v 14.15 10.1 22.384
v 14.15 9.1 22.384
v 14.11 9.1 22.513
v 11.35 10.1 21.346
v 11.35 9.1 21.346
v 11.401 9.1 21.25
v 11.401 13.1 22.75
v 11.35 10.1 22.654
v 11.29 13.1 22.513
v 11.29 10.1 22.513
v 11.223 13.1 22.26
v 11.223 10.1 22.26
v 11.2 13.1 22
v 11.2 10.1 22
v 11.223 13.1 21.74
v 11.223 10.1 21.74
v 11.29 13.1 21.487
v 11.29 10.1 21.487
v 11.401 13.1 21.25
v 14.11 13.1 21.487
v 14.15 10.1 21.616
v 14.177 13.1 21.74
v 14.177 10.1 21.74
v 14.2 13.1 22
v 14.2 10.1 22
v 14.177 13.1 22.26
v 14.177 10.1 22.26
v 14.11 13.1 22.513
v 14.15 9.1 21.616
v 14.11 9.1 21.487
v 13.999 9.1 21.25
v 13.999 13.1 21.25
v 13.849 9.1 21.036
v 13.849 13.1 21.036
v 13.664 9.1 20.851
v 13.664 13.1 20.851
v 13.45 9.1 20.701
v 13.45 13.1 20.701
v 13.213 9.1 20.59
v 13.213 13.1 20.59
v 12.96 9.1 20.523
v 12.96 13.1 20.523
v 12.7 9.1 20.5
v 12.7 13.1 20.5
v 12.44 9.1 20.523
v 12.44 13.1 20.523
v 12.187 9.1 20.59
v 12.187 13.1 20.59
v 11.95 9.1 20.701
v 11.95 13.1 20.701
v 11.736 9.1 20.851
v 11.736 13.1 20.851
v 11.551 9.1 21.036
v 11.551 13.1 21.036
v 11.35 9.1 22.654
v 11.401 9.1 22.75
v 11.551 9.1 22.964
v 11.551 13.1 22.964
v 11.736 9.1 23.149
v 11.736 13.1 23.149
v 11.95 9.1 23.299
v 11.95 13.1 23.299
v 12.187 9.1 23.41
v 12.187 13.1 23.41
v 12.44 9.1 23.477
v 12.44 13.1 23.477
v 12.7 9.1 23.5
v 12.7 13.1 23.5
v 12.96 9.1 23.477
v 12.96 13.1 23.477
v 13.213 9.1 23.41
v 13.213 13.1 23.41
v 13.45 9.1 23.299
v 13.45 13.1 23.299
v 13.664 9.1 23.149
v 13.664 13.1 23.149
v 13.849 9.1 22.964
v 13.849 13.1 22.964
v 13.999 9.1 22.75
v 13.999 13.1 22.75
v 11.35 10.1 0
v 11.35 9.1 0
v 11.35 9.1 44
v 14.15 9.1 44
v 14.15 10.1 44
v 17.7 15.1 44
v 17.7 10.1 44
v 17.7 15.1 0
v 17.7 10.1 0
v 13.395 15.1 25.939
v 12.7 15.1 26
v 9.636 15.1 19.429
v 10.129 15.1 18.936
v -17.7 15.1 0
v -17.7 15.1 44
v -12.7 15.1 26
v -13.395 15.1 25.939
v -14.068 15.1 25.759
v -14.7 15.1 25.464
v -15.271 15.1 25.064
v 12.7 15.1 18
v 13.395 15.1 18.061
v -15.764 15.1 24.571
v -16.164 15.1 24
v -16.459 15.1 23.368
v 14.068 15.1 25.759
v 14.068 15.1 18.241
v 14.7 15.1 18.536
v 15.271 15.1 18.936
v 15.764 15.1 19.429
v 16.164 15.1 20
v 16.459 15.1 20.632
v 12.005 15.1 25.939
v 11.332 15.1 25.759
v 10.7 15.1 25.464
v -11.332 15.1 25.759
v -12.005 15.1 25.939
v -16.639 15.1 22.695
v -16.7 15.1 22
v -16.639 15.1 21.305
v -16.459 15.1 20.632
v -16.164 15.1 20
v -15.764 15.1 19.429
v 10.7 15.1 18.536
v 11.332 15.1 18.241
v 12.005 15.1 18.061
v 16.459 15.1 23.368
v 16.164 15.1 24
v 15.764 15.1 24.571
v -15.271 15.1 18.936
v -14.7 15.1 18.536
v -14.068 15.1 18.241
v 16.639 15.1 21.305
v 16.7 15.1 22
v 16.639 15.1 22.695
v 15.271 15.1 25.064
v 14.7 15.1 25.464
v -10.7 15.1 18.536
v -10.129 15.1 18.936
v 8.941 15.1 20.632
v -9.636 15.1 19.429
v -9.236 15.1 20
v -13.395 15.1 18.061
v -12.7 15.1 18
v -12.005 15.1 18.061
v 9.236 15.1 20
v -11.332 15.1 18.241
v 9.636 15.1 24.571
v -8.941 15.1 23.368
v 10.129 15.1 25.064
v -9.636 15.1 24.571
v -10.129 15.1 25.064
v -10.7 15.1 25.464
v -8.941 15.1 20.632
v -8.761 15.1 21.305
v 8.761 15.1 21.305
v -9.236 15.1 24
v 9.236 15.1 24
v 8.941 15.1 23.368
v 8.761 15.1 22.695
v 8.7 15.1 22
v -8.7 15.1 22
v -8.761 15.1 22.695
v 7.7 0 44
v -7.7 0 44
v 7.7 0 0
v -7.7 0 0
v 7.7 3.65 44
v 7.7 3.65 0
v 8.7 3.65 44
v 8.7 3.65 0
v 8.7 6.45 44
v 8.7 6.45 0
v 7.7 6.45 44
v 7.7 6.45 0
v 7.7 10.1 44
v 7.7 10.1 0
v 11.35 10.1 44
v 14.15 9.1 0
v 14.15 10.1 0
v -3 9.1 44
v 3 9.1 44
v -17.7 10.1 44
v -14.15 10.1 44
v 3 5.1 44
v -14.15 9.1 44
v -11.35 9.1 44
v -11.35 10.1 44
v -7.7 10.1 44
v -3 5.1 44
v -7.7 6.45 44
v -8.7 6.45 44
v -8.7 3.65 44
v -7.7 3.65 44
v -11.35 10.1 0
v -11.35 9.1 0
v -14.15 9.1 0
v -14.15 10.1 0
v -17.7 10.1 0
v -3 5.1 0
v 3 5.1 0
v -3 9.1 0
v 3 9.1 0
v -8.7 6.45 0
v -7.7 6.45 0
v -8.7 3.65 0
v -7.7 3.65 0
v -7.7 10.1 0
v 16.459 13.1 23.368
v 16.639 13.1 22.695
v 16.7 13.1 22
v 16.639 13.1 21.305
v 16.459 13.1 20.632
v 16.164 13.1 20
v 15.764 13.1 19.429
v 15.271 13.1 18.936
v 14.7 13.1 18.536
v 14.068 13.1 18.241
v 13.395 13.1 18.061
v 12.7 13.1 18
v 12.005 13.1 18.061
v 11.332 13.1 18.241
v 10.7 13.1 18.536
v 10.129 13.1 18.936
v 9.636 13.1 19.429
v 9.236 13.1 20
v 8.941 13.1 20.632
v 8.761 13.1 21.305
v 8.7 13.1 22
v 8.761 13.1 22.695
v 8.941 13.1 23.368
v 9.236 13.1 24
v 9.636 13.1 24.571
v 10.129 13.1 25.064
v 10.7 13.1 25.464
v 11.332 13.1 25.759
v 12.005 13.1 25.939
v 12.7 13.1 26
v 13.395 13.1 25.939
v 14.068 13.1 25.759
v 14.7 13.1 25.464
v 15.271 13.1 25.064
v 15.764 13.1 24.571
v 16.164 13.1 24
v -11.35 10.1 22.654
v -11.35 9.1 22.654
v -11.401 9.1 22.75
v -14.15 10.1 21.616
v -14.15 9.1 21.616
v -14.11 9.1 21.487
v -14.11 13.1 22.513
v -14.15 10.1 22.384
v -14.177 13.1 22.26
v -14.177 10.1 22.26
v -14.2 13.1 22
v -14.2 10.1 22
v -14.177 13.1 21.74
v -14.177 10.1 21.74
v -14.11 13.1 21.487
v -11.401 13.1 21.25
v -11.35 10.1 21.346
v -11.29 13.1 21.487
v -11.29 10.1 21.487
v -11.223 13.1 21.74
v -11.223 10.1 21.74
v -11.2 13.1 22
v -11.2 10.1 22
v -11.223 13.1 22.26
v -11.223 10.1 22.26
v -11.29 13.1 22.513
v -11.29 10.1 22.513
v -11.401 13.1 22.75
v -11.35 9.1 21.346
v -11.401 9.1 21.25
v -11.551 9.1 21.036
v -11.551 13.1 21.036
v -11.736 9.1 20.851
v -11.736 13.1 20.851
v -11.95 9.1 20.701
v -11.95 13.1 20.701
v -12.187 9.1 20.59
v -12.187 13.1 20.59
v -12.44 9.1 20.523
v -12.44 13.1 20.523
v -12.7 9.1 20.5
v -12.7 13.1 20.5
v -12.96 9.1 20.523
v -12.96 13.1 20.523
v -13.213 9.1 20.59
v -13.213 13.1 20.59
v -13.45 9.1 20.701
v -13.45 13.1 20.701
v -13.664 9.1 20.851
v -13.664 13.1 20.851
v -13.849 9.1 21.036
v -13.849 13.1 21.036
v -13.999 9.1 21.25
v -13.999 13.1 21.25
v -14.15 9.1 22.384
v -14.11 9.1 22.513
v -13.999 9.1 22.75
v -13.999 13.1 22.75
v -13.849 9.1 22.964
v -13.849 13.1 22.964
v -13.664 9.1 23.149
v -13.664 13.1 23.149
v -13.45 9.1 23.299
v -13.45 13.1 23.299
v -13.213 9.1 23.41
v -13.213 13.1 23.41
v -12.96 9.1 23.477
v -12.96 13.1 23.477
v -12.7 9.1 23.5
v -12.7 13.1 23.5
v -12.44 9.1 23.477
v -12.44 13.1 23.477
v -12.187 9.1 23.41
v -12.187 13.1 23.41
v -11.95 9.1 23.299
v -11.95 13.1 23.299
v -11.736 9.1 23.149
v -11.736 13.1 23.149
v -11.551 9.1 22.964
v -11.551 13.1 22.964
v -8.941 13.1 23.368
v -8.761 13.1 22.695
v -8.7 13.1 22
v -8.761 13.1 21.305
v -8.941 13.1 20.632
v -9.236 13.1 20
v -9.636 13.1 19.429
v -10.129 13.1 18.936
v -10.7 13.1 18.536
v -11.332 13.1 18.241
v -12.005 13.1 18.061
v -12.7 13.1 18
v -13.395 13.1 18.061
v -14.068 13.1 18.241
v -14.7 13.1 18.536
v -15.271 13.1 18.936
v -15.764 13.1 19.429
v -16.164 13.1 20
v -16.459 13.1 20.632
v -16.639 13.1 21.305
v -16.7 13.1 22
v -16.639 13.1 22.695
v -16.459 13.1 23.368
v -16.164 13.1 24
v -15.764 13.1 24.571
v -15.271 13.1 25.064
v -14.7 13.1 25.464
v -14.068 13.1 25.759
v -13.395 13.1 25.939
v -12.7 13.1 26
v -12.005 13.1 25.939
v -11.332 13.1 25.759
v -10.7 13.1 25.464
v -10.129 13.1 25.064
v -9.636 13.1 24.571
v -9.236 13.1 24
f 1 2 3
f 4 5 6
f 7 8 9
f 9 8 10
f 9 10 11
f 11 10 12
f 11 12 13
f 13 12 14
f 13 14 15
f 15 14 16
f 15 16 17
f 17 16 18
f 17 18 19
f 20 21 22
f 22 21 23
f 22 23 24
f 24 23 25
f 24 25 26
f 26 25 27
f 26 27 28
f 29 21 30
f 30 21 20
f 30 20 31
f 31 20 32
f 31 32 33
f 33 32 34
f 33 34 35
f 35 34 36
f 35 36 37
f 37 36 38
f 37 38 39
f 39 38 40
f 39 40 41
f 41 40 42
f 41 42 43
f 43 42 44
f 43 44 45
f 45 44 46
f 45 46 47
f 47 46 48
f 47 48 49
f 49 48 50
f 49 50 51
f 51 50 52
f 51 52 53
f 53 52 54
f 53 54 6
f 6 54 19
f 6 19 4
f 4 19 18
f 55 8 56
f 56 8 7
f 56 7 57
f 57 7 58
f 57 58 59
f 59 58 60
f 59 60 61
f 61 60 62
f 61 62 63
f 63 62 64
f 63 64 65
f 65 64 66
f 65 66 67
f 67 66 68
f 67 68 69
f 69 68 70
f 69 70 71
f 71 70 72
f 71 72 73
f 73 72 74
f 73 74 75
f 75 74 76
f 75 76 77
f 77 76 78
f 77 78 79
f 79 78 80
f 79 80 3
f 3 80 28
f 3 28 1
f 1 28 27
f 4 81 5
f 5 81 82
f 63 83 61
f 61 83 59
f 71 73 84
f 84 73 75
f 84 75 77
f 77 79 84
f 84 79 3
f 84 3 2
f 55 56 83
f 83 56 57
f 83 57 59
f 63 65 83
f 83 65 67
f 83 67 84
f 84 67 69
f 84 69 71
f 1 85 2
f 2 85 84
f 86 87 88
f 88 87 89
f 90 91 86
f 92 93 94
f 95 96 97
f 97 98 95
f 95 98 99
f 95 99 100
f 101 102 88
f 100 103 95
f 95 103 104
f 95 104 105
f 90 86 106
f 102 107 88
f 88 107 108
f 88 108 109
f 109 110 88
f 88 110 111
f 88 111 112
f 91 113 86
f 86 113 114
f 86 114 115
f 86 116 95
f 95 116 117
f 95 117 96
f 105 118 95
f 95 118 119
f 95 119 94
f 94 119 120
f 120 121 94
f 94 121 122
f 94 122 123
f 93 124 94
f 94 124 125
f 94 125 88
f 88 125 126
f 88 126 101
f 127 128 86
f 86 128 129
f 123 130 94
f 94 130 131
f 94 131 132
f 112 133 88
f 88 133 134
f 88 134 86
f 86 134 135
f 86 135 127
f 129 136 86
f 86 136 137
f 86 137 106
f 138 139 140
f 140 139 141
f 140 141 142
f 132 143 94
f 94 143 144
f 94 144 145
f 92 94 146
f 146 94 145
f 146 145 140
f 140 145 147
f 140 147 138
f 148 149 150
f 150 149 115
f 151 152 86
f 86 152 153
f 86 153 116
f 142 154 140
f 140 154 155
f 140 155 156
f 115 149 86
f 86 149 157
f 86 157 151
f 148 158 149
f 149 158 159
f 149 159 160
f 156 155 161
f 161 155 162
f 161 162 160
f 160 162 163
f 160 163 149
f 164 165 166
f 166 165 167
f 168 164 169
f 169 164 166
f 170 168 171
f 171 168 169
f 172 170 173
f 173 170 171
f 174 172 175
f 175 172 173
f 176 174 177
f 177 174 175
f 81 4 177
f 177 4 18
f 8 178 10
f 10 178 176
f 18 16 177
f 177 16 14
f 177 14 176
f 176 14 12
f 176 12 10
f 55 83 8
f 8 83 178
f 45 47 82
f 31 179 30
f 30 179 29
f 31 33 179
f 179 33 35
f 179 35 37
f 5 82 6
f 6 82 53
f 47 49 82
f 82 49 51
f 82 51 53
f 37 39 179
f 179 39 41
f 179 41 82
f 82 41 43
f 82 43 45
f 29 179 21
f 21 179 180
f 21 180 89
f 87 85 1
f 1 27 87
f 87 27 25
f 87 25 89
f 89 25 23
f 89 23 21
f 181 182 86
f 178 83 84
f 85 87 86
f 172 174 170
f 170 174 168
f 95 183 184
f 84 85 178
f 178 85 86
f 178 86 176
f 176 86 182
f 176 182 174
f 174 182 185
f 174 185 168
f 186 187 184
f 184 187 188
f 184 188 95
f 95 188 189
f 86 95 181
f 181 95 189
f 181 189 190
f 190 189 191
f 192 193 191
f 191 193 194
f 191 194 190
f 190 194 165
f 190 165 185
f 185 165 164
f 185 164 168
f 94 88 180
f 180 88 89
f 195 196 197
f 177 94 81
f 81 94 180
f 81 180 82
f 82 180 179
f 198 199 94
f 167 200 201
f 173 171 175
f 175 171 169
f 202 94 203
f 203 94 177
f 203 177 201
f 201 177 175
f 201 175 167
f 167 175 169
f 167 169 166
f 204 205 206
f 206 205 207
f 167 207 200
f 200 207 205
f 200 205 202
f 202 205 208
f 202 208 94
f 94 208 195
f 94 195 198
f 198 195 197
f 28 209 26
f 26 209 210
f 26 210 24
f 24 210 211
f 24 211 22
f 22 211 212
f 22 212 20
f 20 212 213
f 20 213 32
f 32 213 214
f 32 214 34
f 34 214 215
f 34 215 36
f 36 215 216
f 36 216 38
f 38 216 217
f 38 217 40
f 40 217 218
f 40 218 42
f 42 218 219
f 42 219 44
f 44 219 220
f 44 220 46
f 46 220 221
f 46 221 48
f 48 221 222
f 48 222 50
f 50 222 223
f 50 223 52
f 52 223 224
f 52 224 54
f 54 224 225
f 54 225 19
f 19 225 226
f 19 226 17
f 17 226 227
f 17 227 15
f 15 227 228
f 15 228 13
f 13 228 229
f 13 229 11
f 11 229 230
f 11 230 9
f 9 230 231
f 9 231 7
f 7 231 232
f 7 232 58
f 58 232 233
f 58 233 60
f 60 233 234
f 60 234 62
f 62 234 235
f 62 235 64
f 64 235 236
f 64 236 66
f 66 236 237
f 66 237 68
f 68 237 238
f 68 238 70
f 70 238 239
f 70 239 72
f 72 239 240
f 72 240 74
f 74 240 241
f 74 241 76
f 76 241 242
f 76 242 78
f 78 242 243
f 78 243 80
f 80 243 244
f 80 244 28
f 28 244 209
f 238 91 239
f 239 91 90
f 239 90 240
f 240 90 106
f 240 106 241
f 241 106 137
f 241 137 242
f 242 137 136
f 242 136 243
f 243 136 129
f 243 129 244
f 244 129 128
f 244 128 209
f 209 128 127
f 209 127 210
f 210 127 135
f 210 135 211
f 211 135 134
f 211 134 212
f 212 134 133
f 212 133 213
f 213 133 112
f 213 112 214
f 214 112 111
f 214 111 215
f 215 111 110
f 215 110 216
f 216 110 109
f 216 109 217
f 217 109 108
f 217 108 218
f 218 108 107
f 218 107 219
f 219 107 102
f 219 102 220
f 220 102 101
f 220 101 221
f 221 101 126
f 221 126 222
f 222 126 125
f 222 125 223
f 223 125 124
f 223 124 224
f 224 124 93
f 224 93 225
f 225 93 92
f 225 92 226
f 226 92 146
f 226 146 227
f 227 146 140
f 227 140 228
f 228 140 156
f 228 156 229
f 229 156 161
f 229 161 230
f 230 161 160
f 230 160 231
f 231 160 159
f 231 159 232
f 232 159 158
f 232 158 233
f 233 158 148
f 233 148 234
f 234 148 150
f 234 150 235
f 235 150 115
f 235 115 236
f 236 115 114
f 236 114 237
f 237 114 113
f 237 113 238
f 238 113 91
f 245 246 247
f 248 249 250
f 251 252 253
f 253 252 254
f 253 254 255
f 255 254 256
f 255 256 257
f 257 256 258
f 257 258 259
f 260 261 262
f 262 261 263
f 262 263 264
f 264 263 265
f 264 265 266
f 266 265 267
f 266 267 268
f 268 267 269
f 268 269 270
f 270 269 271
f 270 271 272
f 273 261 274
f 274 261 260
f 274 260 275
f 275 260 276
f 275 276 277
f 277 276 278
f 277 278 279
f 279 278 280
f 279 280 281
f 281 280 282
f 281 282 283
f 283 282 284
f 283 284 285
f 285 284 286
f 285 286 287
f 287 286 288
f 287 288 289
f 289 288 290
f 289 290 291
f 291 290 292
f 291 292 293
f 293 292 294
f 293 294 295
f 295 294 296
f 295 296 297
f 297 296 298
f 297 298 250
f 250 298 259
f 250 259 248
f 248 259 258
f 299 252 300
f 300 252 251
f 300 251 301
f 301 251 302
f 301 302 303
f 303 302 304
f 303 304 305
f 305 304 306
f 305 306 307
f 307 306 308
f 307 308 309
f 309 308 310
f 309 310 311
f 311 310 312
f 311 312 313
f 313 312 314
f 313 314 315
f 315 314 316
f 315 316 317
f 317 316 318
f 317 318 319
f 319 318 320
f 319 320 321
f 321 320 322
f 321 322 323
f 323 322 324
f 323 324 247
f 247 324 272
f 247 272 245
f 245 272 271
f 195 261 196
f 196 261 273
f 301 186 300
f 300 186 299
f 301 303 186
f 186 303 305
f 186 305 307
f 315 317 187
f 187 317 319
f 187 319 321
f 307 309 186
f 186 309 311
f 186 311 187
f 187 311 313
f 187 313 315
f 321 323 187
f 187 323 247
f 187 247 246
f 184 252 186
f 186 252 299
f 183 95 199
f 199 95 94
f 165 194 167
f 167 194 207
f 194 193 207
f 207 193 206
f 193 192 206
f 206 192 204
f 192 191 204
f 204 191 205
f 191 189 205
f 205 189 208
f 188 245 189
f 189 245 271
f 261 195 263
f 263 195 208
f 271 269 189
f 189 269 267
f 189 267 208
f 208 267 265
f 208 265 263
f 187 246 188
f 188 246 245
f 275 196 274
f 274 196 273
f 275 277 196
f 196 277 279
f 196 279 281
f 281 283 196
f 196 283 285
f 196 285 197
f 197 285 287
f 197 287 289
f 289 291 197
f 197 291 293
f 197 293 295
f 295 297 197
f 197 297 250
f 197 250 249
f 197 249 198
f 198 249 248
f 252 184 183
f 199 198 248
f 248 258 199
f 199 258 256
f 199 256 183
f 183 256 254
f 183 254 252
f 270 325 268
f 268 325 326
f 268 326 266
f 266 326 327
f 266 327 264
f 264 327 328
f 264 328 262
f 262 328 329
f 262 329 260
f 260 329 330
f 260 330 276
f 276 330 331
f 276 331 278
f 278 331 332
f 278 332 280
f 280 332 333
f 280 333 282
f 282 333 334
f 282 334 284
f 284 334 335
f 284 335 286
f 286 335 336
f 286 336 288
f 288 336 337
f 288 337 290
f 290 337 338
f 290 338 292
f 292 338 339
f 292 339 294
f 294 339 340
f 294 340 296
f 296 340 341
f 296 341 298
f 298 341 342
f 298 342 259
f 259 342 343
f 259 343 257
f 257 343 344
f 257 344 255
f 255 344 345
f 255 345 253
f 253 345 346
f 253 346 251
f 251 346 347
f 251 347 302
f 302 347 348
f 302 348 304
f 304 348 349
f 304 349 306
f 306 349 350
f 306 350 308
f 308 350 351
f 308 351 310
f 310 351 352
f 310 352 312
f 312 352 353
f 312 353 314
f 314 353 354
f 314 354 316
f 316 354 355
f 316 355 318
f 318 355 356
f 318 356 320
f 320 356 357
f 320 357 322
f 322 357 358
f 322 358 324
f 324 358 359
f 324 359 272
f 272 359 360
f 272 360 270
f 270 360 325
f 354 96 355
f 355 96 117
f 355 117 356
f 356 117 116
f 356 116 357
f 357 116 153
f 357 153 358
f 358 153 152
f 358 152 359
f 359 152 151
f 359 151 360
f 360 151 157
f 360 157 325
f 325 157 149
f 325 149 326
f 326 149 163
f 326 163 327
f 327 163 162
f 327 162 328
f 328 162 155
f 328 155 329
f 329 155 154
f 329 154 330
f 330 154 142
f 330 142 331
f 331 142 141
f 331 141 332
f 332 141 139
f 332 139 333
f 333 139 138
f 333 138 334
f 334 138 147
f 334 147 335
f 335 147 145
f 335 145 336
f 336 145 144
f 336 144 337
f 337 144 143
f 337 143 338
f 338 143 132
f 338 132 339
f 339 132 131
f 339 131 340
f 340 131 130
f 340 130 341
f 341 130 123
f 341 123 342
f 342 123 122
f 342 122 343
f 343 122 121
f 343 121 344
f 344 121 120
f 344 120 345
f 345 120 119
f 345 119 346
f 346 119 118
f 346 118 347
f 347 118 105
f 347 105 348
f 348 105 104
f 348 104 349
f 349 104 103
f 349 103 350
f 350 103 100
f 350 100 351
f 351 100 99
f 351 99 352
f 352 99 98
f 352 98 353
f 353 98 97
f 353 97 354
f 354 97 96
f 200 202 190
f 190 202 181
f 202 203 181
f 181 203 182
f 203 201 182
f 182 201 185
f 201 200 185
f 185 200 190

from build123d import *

# Parameters (mm, degrees)
BOSS_EXTRU_1_DEPTH      = 44
ESQUISSE3_R             = 1.5
ENL_V_MAT_EXTRU_2_DEPTH = 16.1
ESQUISSE4_R             = 4
ENL_V_MAT_EXTRU_3_DEPTH = 2
ESQUISSE5_W             = 6
ESQUISSE5_H             = 4
ENL_V_MAT_EXTRU_4_DEPTH = 45


with BuildPart() as part:
    # Esquisse1 → Boss.-Extru.1 (new body)
    with BuildSketch(Plane.XY):
        Polygon((0, 15.1), (17.7, 15.1), (17.7, 10.1), (14.15, 10.1), (14.15, 9.1), (11.35, 9.1), (11.35, 10.1), (7.7, 10.1), (7.7, 6.45), (8.7, 6.45), (8.7, 3.65), (7.7, 3.65), (7.7, 0), (0, 0), align=None)
    extrude(amount=BOSS_EXTRU_1_DEPTH)

    # Esquisse3 → Enlèv. mat.-Extru.2 (cut, through all)
    with BuildSketch(Plane(origin=(0, 15.1, 0), x_dir=(1, 0, 0), z_dir=(0, 1, 0))):
        with Locations((12.7, -22)):
            Circle(ESQUISSE3_R)
    extrude(amount=-ENL_V_MAT_EXTRU_2_DEPTH, mode=Mode.SUBTRACT)

    # Esquisse4 → Enlèv. mat.-Extru.3 (cut)
    with BuildSketch(Plane(origin=(0, 15.1, 0), x_dir=(1, 0, 0), z_dir=(0, 1, 0))):
        with Locations((12.7, -22)):
            Circle(ESQUISSE4_R)
    extrude(amount=-ENL_V_MAT_EXTRU_3_DEPTH, mode=Mode.SUBTRACT)

    # Symétrie1: part across plane


with BuildPart() as part_1:
    add(part.part)
    add(part.part.mirror(Plane(origin=(0, 0, 44), x_dir=(0, 0, 1), z_dir=(1, 0, 0))))

    # Esquisse5 → Enlèv. mat.-Extru.4 (cut, through all)
    with BuildSketch(Plane.XY.offset(44)):
        with Locations((0, 7.1)):
            Rectangle(ESQUISSE5_W, ESQUISSE5_H)
    extrude(amount=-ENL_V_MAT_EXTRU_4_DEPTH, mode=Mode.SUBTRACT)


solid = part_1.part
